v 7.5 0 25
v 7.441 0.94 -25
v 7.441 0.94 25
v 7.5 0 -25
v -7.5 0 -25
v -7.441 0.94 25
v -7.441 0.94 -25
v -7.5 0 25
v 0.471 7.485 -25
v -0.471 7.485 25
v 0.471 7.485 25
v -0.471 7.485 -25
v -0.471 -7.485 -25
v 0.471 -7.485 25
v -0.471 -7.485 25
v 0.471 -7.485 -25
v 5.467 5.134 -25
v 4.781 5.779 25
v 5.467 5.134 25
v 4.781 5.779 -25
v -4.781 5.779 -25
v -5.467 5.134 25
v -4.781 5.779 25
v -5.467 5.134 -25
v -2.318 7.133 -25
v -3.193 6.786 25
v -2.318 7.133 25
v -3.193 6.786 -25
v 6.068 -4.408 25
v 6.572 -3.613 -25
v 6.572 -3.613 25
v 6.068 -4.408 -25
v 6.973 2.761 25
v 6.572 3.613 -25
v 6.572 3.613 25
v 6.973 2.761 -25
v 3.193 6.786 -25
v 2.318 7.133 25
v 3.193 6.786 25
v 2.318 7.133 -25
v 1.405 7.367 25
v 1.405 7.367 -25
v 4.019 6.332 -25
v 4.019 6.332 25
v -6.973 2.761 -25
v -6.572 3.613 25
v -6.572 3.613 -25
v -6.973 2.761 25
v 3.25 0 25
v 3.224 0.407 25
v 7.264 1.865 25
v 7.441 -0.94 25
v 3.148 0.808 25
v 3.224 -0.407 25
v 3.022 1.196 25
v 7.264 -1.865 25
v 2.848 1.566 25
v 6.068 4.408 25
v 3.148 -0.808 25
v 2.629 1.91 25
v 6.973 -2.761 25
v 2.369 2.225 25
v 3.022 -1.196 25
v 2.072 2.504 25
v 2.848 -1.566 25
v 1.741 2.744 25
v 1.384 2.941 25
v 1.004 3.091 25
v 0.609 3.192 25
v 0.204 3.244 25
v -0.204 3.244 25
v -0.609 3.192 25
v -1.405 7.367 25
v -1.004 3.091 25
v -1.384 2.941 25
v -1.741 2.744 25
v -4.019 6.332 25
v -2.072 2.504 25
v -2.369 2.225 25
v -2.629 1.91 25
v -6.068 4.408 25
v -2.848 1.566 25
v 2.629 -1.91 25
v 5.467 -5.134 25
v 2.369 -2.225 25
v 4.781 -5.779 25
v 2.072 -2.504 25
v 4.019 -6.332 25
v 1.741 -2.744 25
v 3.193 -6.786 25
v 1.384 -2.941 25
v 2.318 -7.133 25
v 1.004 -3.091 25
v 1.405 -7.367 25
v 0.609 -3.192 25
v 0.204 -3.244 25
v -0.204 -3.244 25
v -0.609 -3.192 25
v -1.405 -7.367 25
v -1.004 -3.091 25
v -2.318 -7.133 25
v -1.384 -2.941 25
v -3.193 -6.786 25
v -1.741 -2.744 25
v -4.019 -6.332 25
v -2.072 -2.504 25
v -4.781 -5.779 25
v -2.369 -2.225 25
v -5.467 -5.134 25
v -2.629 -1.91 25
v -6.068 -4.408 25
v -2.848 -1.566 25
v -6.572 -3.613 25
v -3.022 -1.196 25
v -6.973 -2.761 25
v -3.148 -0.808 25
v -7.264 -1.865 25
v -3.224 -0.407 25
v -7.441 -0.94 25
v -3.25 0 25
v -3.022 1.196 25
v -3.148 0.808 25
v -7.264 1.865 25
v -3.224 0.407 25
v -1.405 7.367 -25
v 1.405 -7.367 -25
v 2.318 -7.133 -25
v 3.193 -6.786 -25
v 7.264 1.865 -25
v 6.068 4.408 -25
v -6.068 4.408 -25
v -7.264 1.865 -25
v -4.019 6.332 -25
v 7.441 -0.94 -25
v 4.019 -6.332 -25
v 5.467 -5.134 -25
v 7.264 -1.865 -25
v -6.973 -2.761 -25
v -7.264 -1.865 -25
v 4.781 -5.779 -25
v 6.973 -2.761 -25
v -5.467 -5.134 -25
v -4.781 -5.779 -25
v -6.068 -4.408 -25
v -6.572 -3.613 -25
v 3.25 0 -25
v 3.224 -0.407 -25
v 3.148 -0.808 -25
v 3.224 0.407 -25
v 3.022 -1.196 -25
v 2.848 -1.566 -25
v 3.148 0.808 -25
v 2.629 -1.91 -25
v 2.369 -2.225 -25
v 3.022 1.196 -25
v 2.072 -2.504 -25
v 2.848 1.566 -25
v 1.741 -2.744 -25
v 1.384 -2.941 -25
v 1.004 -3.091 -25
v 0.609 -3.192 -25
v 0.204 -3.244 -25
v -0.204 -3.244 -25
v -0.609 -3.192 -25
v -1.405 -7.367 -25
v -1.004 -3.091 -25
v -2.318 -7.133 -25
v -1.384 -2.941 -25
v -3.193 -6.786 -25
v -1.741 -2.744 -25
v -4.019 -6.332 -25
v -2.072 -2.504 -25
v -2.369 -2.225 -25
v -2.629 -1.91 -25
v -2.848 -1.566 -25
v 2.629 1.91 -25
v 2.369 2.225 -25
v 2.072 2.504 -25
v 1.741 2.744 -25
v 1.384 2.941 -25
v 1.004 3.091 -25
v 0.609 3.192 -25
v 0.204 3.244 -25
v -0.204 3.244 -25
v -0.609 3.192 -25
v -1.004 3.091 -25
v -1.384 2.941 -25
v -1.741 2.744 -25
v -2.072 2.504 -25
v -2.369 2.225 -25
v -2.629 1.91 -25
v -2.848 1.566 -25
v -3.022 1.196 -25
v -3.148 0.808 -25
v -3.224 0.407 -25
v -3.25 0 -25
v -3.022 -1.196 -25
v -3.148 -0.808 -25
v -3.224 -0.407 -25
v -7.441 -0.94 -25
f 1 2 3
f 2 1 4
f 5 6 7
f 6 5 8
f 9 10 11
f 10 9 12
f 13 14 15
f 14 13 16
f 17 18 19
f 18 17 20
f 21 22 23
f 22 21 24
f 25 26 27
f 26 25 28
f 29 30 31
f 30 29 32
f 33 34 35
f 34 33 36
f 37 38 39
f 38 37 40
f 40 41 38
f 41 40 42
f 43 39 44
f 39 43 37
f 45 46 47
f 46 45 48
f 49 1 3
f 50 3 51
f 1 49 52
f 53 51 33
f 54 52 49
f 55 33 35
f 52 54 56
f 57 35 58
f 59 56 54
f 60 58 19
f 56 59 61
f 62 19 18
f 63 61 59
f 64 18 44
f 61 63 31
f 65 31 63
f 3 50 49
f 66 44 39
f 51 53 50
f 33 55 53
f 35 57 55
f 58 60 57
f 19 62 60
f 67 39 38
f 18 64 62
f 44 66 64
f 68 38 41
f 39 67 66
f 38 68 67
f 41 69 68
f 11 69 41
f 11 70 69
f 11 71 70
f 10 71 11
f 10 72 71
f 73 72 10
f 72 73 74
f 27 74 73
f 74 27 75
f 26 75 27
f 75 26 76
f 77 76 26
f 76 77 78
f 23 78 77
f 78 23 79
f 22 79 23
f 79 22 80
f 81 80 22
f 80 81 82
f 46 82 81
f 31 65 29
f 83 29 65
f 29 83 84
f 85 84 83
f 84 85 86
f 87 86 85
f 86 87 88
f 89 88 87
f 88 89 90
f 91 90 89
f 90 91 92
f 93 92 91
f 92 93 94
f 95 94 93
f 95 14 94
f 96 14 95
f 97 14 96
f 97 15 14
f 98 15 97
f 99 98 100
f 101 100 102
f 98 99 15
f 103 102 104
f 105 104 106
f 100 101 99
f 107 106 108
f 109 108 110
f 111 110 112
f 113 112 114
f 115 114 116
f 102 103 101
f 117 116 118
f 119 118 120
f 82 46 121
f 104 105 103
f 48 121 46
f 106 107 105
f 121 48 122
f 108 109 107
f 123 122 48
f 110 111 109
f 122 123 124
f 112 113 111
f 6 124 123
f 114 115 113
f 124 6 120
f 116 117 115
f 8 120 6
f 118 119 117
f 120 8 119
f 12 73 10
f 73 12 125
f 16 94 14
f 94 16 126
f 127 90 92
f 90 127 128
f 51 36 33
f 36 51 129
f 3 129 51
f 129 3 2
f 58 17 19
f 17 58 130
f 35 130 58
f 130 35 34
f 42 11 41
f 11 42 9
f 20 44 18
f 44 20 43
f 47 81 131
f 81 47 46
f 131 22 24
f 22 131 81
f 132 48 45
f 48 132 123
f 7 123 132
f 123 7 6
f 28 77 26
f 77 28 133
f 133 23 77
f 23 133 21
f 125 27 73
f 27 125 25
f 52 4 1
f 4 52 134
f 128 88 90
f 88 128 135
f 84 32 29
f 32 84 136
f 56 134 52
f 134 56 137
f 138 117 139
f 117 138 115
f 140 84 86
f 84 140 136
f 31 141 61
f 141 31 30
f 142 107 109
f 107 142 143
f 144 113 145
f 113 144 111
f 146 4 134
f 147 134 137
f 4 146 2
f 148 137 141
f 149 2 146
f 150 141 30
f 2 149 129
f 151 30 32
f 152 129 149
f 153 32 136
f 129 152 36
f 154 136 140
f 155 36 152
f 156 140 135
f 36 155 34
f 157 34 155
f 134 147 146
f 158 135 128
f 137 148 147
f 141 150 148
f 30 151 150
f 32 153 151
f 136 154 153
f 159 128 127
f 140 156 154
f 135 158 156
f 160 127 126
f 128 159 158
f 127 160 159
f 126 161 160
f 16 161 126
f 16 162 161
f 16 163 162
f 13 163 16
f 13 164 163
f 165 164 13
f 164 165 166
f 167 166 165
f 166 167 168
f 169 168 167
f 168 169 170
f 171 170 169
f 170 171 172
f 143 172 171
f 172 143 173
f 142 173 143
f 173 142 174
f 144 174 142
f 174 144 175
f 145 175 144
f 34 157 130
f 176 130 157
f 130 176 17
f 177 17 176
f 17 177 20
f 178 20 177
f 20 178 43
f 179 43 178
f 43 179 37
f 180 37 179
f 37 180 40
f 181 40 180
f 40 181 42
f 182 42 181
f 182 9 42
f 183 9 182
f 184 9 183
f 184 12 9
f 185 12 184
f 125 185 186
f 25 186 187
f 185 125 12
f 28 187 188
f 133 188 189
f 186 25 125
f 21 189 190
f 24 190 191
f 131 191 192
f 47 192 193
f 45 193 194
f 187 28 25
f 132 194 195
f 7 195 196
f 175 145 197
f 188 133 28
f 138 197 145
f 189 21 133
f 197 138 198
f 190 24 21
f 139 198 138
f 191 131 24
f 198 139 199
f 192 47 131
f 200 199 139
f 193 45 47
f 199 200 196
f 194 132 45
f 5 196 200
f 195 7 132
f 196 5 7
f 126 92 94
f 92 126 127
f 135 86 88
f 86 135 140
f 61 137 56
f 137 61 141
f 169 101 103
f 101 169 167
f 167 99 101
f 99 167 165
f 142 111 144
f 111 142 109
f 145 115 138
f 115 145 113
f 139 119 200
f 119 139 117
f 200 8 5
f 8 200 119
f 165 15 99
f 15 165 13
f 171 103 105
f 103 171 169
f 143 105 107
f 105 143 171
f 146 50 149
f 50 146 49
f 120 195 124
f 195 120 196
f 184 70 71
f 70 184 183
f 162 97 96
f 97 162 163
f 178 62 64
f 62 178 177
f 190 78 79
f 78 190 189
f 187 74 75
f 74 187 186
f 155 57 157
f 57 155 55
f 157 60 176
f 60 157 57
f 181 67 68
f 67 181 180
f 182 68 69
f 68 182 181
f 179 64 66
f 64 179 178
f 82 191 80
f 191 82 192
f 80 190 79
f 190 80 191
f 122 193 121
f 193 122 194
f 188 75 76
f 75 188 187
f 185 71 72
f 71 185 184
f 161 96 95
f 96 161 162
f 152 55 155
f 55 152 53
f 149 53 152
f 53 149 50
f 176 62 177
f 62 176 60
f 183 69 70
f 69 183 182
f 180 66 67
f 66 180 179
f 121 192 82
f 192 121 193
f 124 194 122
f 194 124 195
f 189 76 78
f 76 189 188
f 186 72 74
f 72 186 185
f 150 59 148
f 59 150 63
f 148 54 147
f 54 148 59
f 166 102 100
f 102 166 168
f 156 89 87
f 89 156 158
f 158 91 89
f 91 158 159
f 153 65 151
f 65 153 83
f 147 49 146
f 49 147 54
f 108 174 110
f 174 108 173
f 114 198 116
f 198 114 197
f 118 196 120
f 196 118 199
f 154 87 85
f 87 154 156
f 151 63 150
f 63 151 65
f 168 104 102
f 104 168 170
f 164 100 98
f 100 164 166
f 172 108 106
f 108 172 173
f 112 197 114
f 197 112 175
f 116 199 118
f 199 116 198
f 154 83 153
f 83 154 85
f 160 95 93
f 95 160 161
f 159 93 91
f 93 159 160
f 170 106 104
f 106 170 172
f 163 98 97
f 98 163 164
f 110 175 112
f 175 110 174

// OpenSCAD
$fn = 50;


difference() {
	union() {
		translate(v = [0, 0, -25.0000000000]) {
			cylinder(h = 50, r = 7.5000000000);
		}
	}
	union() {
		translate(v = [0, 0, -100.0000000000]) {
			cylinder(h = 200, r = 3.2500000000);
		}
	}
}
